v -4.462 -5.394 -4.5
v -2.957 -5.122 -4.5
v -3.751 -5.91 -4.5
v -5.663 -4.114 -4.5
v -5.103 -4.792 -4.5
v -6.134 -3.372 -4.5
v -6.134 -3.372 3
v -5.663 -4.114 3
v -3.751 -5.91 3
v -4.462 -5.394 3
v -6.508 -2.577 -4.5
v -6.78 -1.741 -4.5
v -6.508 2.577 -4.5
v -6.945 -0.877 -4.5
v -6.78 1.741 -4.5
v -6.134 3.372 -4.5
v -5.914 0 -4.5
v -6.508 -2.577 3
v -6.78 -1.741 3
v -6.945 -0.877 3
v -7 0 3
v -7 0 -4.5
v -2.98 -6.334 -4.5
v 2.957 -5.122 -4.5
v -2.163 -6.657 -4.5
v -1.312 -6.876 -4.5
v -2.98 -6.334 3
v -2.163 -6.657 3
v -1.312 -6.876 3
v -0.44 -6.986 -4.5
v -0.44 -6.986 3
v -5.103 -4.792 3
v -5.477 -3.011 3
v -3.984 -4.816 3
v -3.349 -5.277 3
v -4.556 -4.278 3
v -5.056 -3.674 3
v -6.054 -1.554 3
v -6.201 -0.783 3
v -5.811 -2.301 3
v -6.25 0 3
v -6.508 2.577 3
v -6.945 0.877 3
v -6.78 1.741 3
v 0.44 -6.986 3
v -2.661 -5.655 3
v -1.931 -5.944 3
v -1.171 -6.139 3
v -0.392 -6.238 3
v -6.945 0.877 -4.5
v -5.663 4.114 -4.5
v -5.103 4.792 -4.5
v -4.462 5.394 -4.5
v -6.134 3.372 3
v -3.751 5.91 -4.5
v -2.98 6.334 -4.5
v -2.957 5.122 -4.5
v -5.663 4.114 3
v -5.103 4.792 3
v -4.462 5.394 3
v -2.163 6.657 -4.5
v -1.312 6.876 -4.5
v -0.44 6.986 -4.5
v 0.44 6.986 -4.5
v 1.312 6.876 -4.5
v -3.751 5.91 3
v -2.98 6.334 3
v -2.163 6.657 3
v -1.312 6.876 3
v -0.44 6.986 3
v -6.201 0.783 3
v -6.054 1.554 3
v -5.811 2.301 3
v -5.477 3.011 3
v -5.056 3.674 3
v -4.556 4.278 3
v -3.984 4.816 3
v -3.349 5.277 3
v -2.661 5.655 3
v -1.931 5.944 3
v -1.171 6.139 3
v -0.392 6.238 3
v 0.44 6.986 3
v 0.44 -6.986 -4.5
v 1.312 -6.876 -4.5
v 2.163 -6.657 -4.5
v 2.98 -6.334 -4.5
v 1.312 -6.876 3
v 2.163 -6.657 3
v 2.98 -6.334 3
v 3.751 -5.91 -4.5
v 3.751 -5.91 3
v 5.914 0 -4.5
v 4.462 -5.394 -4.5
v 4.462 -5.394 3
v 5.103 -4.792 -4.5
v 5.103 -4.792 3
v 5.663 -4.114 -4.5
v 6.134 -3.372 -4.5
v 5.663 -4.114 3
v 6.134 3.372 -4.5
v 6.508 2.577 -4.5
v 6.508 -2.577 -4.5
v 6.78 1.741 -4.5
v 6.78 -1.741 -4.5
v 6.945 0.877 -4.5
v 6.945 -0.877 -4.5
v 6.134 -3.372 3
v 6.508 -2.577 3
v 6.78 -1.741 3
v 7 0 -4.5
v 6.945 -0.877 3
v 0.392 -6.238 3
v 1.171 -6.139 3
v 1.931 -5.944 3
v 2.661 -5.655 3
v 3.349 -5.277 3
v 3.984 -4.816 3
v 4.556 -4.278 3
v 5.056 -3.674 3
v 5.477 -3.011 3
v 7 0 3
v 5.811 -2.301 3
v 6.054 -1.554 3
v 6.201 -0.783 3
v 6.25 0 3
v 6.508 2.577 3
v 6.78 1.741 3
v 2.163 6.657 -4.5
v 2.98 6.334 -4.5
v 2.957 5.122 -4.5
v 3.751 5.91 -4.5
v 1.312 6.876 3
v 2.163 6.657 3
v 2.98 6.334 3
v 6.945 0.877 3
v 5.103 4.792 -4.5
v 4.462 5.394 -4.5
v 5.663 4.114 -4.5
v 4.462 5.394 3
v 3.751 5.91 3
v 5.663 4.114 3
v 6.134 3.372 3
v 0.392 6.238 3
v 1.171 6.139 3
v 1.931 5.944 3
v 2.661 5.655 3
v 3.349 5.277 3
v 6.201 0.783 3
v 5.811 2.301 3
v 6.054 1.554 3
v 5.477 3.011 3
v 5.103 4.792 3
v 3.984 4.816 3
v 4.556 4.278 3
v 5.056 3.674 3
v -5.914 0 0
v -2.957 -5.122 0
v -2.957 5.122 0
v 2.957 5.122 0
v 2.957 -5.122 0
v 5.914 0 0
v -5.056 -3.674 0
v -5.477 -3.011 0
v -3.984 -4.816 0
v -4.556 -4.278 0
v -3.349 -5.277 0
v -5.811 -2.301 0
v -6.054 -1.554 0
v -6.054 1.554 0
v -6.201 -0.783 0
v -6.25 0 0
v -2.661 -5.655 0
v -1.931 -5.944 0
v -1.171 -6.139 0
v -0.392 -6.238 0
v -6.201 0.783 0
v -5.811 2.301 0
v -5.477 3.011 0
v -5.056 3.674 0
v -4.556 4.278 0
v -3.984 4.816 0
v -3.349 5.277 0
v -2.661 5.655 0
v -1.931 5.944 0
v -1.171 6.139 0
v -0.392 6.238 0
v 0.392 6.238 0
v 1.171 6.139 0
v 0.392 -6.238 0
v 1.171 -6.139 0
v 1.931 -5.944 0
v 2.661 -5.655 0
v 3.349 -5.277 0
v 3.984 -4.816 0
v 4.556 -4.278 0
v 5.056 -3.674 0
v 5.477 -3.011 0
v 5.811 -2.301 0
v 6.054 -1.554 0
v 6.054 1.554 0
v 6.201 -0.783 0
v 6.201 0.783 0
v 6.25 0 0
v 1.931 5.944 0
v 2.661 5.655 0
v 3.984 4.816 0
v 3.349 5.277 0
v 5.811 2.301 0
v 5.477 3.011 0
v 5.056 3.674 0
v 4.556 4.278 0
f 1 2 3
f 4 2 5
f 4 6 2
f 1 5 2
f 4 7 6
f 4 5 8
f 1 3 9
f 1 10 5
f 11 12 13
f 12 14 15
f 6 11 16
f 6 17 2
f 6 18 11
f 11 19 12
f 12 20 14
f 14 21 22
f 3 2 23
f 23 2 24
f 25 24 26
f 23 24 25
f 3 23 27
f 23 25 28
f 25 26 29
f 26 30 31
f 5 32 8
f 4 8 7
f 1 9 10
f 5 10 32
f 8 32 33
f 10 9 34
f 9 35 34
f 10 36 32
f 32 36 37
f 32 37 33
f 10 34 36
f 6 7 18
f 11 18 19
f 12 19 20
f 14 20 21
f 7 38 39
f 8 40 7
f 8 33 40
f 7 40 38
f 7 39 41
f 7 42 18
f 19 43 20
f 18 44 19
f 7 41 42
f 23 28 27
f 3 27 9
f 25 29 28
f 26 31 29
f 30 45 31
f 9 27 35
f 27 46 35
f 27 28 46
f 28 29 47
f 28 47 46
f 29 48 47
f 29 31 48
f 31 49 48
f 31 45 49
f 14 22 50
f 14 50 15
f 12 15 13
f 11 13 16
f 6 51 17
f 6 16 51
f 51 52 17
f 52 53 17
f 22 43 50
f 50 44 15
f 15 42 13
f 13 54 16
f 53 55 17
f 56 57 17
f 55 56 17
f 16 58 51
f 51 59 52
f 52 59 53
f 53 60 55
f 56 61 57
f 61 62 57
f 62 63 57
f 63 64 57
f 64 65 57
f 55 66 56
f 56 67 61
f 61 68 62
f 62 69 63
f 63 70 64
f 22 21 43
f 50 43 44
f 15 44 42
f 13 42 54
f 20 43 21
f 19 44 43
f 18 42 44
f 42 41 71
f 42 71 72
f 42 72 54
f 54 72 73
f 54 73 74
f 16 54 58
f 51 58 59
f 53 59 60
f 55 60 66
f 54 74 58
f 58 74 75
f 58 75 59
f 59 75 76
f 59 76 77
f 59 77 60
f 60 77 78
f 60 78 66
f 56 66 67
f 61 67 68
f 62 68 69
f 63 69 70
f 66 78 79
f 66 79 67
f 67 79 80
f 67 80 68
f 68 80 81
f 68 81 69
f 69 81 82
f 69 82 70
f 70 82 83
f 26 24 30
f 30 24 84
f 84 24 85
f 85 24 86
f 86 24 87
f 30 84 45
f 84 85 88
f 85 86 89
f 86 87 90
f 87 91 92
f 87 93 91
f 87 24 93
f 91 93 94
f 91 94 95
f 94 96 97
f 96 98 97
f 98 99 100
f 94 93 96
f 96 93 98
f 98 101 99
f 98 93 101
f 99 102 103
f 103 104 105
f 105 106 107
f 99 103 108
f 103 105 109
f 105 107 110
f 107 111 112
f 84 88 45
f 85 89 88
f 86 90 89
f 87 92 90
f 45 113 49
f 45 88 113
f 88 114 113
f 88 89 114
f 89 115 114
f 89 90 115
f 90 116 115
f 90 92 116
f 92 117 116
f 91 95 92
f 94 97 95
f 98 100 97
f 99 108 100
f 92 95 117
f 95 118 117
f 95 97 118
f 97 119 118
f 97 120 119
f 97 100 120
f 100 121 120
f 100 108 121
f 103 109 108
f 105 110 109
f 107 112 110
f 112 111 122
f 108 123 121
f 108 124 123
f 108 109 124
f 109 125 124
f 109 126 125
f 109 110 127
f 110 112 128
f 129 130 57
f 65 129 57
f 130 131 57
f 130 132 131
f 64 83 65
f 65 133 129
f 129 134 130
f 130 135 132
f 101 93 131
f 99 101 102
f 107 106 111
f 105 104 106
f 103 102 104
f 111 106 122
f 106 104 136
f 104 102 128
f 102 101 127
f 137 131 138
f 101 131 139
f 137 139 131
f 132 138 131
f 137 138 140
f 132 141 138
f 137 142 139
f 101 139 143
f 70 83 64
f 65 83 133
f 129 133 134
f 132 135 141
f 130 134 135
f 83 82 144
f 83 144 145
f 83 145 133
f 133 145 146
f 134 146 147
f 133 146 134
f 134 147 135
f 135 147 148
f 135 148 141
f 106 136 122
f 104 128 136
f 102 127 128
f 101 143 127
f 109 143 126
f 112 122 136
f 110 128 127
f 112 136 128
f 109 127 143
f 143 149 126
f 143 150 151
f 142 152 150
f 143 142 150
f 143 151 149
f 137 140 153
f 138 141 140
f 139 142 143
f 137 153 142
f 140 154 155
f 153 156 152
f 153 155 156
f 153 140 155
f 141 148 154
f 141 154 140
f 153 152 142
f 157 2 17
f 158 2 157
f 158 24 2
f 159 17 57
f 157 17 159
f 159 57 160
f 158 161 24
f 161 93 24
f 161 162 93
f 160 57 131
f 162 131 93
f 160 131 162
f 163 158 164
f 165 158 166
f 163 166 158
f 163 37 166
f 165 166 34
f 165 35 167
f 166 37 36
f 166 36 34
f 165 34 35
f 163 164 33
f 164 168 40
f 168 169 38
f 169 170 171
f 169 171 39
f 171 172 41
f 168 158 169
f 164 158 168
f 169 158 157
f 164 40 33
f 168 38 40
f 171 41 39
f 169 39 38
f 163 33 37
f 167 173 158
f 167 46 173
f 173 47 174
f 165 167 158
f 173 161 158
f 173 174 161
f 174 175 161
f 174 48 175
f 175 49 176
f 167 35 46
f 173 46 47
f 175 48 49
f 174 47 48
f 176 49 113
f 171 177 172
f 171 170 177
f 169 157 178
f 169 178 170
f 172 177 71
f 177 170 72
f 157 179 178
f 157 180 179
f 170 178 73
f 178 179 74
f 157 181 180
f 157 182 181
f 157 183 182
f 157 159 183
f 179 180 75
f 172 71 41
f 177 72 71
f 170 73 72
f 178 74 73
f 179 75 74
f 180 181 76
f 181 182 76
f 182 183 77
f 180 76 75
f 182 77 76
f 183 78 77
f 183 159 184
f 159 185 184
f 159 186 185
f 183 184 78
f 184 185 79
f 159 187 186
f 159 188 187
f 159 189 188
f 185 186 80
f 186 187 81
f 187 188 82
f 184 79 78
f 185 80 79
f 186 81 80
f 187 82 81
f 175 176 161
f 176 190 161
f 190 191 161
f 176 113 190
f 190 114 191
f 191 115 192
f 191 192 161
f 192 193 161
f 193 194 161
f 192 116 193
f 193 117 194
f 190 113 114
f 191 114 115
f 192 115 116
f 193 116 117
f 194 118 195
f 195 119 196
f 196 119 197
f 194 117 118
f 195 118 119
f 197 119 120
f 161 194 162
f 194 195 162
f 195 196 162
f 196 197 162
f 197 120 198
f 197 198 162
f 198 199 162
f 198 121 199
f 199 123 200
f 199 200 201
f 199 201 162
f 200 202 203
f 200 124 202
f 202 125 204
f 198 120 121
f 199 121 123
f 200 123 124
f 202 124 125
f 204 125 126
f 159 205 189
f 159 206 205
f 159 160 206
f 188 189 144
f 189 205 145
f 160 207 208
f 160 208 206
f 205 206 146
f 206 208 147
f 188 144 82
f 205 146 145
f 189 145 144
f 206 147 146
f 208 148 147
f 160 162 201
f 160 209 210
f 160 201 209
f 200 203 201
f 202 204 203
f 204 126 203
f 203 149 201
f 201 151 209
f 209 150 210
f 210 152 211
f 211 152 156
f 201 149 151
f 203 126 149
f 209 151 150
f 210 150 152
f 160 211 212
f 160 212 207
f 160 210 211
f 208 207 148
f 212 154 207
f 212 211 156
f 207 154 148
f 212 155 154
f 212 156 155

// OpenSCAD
$fn = 50;

difference() {
	union() {
		translate(v = [0, 0, -4.5]) {
			cylinder(h = 7.5, r = 7.0);
		}
		#translate(v = [0, 0, -6.0]) {
			cylinder(h = 6, r = 2.875);
		}
	}
	union() {
		translate(v = [0, 0, 0]) {
			rotate(a = [0, 0, 0]) {
				difference() {
					union() {
						translate(v = [0, 0, -5]) {
							linear_extrude(height = 5) {
								polygon(points = [[5.914249999999999, 0.0], [2.957125, 5.1218907443321156], [-2.9571249999999982, 5.1218907443321156], [-5.914249999999999, 7.242867331857232e-16], [-2.9571250000000022, -5.121890744332115], [2.9571249999999956, -5.121890744332118]]);
							}
						}
					}
					union();
				}
			}
		}
		#cylinder(h = 3, r = 6.25);
		#translate(v = [0, 0, -100.0]) {
			cylinder(h = 200, r = 3.25);
		}
	}
}
